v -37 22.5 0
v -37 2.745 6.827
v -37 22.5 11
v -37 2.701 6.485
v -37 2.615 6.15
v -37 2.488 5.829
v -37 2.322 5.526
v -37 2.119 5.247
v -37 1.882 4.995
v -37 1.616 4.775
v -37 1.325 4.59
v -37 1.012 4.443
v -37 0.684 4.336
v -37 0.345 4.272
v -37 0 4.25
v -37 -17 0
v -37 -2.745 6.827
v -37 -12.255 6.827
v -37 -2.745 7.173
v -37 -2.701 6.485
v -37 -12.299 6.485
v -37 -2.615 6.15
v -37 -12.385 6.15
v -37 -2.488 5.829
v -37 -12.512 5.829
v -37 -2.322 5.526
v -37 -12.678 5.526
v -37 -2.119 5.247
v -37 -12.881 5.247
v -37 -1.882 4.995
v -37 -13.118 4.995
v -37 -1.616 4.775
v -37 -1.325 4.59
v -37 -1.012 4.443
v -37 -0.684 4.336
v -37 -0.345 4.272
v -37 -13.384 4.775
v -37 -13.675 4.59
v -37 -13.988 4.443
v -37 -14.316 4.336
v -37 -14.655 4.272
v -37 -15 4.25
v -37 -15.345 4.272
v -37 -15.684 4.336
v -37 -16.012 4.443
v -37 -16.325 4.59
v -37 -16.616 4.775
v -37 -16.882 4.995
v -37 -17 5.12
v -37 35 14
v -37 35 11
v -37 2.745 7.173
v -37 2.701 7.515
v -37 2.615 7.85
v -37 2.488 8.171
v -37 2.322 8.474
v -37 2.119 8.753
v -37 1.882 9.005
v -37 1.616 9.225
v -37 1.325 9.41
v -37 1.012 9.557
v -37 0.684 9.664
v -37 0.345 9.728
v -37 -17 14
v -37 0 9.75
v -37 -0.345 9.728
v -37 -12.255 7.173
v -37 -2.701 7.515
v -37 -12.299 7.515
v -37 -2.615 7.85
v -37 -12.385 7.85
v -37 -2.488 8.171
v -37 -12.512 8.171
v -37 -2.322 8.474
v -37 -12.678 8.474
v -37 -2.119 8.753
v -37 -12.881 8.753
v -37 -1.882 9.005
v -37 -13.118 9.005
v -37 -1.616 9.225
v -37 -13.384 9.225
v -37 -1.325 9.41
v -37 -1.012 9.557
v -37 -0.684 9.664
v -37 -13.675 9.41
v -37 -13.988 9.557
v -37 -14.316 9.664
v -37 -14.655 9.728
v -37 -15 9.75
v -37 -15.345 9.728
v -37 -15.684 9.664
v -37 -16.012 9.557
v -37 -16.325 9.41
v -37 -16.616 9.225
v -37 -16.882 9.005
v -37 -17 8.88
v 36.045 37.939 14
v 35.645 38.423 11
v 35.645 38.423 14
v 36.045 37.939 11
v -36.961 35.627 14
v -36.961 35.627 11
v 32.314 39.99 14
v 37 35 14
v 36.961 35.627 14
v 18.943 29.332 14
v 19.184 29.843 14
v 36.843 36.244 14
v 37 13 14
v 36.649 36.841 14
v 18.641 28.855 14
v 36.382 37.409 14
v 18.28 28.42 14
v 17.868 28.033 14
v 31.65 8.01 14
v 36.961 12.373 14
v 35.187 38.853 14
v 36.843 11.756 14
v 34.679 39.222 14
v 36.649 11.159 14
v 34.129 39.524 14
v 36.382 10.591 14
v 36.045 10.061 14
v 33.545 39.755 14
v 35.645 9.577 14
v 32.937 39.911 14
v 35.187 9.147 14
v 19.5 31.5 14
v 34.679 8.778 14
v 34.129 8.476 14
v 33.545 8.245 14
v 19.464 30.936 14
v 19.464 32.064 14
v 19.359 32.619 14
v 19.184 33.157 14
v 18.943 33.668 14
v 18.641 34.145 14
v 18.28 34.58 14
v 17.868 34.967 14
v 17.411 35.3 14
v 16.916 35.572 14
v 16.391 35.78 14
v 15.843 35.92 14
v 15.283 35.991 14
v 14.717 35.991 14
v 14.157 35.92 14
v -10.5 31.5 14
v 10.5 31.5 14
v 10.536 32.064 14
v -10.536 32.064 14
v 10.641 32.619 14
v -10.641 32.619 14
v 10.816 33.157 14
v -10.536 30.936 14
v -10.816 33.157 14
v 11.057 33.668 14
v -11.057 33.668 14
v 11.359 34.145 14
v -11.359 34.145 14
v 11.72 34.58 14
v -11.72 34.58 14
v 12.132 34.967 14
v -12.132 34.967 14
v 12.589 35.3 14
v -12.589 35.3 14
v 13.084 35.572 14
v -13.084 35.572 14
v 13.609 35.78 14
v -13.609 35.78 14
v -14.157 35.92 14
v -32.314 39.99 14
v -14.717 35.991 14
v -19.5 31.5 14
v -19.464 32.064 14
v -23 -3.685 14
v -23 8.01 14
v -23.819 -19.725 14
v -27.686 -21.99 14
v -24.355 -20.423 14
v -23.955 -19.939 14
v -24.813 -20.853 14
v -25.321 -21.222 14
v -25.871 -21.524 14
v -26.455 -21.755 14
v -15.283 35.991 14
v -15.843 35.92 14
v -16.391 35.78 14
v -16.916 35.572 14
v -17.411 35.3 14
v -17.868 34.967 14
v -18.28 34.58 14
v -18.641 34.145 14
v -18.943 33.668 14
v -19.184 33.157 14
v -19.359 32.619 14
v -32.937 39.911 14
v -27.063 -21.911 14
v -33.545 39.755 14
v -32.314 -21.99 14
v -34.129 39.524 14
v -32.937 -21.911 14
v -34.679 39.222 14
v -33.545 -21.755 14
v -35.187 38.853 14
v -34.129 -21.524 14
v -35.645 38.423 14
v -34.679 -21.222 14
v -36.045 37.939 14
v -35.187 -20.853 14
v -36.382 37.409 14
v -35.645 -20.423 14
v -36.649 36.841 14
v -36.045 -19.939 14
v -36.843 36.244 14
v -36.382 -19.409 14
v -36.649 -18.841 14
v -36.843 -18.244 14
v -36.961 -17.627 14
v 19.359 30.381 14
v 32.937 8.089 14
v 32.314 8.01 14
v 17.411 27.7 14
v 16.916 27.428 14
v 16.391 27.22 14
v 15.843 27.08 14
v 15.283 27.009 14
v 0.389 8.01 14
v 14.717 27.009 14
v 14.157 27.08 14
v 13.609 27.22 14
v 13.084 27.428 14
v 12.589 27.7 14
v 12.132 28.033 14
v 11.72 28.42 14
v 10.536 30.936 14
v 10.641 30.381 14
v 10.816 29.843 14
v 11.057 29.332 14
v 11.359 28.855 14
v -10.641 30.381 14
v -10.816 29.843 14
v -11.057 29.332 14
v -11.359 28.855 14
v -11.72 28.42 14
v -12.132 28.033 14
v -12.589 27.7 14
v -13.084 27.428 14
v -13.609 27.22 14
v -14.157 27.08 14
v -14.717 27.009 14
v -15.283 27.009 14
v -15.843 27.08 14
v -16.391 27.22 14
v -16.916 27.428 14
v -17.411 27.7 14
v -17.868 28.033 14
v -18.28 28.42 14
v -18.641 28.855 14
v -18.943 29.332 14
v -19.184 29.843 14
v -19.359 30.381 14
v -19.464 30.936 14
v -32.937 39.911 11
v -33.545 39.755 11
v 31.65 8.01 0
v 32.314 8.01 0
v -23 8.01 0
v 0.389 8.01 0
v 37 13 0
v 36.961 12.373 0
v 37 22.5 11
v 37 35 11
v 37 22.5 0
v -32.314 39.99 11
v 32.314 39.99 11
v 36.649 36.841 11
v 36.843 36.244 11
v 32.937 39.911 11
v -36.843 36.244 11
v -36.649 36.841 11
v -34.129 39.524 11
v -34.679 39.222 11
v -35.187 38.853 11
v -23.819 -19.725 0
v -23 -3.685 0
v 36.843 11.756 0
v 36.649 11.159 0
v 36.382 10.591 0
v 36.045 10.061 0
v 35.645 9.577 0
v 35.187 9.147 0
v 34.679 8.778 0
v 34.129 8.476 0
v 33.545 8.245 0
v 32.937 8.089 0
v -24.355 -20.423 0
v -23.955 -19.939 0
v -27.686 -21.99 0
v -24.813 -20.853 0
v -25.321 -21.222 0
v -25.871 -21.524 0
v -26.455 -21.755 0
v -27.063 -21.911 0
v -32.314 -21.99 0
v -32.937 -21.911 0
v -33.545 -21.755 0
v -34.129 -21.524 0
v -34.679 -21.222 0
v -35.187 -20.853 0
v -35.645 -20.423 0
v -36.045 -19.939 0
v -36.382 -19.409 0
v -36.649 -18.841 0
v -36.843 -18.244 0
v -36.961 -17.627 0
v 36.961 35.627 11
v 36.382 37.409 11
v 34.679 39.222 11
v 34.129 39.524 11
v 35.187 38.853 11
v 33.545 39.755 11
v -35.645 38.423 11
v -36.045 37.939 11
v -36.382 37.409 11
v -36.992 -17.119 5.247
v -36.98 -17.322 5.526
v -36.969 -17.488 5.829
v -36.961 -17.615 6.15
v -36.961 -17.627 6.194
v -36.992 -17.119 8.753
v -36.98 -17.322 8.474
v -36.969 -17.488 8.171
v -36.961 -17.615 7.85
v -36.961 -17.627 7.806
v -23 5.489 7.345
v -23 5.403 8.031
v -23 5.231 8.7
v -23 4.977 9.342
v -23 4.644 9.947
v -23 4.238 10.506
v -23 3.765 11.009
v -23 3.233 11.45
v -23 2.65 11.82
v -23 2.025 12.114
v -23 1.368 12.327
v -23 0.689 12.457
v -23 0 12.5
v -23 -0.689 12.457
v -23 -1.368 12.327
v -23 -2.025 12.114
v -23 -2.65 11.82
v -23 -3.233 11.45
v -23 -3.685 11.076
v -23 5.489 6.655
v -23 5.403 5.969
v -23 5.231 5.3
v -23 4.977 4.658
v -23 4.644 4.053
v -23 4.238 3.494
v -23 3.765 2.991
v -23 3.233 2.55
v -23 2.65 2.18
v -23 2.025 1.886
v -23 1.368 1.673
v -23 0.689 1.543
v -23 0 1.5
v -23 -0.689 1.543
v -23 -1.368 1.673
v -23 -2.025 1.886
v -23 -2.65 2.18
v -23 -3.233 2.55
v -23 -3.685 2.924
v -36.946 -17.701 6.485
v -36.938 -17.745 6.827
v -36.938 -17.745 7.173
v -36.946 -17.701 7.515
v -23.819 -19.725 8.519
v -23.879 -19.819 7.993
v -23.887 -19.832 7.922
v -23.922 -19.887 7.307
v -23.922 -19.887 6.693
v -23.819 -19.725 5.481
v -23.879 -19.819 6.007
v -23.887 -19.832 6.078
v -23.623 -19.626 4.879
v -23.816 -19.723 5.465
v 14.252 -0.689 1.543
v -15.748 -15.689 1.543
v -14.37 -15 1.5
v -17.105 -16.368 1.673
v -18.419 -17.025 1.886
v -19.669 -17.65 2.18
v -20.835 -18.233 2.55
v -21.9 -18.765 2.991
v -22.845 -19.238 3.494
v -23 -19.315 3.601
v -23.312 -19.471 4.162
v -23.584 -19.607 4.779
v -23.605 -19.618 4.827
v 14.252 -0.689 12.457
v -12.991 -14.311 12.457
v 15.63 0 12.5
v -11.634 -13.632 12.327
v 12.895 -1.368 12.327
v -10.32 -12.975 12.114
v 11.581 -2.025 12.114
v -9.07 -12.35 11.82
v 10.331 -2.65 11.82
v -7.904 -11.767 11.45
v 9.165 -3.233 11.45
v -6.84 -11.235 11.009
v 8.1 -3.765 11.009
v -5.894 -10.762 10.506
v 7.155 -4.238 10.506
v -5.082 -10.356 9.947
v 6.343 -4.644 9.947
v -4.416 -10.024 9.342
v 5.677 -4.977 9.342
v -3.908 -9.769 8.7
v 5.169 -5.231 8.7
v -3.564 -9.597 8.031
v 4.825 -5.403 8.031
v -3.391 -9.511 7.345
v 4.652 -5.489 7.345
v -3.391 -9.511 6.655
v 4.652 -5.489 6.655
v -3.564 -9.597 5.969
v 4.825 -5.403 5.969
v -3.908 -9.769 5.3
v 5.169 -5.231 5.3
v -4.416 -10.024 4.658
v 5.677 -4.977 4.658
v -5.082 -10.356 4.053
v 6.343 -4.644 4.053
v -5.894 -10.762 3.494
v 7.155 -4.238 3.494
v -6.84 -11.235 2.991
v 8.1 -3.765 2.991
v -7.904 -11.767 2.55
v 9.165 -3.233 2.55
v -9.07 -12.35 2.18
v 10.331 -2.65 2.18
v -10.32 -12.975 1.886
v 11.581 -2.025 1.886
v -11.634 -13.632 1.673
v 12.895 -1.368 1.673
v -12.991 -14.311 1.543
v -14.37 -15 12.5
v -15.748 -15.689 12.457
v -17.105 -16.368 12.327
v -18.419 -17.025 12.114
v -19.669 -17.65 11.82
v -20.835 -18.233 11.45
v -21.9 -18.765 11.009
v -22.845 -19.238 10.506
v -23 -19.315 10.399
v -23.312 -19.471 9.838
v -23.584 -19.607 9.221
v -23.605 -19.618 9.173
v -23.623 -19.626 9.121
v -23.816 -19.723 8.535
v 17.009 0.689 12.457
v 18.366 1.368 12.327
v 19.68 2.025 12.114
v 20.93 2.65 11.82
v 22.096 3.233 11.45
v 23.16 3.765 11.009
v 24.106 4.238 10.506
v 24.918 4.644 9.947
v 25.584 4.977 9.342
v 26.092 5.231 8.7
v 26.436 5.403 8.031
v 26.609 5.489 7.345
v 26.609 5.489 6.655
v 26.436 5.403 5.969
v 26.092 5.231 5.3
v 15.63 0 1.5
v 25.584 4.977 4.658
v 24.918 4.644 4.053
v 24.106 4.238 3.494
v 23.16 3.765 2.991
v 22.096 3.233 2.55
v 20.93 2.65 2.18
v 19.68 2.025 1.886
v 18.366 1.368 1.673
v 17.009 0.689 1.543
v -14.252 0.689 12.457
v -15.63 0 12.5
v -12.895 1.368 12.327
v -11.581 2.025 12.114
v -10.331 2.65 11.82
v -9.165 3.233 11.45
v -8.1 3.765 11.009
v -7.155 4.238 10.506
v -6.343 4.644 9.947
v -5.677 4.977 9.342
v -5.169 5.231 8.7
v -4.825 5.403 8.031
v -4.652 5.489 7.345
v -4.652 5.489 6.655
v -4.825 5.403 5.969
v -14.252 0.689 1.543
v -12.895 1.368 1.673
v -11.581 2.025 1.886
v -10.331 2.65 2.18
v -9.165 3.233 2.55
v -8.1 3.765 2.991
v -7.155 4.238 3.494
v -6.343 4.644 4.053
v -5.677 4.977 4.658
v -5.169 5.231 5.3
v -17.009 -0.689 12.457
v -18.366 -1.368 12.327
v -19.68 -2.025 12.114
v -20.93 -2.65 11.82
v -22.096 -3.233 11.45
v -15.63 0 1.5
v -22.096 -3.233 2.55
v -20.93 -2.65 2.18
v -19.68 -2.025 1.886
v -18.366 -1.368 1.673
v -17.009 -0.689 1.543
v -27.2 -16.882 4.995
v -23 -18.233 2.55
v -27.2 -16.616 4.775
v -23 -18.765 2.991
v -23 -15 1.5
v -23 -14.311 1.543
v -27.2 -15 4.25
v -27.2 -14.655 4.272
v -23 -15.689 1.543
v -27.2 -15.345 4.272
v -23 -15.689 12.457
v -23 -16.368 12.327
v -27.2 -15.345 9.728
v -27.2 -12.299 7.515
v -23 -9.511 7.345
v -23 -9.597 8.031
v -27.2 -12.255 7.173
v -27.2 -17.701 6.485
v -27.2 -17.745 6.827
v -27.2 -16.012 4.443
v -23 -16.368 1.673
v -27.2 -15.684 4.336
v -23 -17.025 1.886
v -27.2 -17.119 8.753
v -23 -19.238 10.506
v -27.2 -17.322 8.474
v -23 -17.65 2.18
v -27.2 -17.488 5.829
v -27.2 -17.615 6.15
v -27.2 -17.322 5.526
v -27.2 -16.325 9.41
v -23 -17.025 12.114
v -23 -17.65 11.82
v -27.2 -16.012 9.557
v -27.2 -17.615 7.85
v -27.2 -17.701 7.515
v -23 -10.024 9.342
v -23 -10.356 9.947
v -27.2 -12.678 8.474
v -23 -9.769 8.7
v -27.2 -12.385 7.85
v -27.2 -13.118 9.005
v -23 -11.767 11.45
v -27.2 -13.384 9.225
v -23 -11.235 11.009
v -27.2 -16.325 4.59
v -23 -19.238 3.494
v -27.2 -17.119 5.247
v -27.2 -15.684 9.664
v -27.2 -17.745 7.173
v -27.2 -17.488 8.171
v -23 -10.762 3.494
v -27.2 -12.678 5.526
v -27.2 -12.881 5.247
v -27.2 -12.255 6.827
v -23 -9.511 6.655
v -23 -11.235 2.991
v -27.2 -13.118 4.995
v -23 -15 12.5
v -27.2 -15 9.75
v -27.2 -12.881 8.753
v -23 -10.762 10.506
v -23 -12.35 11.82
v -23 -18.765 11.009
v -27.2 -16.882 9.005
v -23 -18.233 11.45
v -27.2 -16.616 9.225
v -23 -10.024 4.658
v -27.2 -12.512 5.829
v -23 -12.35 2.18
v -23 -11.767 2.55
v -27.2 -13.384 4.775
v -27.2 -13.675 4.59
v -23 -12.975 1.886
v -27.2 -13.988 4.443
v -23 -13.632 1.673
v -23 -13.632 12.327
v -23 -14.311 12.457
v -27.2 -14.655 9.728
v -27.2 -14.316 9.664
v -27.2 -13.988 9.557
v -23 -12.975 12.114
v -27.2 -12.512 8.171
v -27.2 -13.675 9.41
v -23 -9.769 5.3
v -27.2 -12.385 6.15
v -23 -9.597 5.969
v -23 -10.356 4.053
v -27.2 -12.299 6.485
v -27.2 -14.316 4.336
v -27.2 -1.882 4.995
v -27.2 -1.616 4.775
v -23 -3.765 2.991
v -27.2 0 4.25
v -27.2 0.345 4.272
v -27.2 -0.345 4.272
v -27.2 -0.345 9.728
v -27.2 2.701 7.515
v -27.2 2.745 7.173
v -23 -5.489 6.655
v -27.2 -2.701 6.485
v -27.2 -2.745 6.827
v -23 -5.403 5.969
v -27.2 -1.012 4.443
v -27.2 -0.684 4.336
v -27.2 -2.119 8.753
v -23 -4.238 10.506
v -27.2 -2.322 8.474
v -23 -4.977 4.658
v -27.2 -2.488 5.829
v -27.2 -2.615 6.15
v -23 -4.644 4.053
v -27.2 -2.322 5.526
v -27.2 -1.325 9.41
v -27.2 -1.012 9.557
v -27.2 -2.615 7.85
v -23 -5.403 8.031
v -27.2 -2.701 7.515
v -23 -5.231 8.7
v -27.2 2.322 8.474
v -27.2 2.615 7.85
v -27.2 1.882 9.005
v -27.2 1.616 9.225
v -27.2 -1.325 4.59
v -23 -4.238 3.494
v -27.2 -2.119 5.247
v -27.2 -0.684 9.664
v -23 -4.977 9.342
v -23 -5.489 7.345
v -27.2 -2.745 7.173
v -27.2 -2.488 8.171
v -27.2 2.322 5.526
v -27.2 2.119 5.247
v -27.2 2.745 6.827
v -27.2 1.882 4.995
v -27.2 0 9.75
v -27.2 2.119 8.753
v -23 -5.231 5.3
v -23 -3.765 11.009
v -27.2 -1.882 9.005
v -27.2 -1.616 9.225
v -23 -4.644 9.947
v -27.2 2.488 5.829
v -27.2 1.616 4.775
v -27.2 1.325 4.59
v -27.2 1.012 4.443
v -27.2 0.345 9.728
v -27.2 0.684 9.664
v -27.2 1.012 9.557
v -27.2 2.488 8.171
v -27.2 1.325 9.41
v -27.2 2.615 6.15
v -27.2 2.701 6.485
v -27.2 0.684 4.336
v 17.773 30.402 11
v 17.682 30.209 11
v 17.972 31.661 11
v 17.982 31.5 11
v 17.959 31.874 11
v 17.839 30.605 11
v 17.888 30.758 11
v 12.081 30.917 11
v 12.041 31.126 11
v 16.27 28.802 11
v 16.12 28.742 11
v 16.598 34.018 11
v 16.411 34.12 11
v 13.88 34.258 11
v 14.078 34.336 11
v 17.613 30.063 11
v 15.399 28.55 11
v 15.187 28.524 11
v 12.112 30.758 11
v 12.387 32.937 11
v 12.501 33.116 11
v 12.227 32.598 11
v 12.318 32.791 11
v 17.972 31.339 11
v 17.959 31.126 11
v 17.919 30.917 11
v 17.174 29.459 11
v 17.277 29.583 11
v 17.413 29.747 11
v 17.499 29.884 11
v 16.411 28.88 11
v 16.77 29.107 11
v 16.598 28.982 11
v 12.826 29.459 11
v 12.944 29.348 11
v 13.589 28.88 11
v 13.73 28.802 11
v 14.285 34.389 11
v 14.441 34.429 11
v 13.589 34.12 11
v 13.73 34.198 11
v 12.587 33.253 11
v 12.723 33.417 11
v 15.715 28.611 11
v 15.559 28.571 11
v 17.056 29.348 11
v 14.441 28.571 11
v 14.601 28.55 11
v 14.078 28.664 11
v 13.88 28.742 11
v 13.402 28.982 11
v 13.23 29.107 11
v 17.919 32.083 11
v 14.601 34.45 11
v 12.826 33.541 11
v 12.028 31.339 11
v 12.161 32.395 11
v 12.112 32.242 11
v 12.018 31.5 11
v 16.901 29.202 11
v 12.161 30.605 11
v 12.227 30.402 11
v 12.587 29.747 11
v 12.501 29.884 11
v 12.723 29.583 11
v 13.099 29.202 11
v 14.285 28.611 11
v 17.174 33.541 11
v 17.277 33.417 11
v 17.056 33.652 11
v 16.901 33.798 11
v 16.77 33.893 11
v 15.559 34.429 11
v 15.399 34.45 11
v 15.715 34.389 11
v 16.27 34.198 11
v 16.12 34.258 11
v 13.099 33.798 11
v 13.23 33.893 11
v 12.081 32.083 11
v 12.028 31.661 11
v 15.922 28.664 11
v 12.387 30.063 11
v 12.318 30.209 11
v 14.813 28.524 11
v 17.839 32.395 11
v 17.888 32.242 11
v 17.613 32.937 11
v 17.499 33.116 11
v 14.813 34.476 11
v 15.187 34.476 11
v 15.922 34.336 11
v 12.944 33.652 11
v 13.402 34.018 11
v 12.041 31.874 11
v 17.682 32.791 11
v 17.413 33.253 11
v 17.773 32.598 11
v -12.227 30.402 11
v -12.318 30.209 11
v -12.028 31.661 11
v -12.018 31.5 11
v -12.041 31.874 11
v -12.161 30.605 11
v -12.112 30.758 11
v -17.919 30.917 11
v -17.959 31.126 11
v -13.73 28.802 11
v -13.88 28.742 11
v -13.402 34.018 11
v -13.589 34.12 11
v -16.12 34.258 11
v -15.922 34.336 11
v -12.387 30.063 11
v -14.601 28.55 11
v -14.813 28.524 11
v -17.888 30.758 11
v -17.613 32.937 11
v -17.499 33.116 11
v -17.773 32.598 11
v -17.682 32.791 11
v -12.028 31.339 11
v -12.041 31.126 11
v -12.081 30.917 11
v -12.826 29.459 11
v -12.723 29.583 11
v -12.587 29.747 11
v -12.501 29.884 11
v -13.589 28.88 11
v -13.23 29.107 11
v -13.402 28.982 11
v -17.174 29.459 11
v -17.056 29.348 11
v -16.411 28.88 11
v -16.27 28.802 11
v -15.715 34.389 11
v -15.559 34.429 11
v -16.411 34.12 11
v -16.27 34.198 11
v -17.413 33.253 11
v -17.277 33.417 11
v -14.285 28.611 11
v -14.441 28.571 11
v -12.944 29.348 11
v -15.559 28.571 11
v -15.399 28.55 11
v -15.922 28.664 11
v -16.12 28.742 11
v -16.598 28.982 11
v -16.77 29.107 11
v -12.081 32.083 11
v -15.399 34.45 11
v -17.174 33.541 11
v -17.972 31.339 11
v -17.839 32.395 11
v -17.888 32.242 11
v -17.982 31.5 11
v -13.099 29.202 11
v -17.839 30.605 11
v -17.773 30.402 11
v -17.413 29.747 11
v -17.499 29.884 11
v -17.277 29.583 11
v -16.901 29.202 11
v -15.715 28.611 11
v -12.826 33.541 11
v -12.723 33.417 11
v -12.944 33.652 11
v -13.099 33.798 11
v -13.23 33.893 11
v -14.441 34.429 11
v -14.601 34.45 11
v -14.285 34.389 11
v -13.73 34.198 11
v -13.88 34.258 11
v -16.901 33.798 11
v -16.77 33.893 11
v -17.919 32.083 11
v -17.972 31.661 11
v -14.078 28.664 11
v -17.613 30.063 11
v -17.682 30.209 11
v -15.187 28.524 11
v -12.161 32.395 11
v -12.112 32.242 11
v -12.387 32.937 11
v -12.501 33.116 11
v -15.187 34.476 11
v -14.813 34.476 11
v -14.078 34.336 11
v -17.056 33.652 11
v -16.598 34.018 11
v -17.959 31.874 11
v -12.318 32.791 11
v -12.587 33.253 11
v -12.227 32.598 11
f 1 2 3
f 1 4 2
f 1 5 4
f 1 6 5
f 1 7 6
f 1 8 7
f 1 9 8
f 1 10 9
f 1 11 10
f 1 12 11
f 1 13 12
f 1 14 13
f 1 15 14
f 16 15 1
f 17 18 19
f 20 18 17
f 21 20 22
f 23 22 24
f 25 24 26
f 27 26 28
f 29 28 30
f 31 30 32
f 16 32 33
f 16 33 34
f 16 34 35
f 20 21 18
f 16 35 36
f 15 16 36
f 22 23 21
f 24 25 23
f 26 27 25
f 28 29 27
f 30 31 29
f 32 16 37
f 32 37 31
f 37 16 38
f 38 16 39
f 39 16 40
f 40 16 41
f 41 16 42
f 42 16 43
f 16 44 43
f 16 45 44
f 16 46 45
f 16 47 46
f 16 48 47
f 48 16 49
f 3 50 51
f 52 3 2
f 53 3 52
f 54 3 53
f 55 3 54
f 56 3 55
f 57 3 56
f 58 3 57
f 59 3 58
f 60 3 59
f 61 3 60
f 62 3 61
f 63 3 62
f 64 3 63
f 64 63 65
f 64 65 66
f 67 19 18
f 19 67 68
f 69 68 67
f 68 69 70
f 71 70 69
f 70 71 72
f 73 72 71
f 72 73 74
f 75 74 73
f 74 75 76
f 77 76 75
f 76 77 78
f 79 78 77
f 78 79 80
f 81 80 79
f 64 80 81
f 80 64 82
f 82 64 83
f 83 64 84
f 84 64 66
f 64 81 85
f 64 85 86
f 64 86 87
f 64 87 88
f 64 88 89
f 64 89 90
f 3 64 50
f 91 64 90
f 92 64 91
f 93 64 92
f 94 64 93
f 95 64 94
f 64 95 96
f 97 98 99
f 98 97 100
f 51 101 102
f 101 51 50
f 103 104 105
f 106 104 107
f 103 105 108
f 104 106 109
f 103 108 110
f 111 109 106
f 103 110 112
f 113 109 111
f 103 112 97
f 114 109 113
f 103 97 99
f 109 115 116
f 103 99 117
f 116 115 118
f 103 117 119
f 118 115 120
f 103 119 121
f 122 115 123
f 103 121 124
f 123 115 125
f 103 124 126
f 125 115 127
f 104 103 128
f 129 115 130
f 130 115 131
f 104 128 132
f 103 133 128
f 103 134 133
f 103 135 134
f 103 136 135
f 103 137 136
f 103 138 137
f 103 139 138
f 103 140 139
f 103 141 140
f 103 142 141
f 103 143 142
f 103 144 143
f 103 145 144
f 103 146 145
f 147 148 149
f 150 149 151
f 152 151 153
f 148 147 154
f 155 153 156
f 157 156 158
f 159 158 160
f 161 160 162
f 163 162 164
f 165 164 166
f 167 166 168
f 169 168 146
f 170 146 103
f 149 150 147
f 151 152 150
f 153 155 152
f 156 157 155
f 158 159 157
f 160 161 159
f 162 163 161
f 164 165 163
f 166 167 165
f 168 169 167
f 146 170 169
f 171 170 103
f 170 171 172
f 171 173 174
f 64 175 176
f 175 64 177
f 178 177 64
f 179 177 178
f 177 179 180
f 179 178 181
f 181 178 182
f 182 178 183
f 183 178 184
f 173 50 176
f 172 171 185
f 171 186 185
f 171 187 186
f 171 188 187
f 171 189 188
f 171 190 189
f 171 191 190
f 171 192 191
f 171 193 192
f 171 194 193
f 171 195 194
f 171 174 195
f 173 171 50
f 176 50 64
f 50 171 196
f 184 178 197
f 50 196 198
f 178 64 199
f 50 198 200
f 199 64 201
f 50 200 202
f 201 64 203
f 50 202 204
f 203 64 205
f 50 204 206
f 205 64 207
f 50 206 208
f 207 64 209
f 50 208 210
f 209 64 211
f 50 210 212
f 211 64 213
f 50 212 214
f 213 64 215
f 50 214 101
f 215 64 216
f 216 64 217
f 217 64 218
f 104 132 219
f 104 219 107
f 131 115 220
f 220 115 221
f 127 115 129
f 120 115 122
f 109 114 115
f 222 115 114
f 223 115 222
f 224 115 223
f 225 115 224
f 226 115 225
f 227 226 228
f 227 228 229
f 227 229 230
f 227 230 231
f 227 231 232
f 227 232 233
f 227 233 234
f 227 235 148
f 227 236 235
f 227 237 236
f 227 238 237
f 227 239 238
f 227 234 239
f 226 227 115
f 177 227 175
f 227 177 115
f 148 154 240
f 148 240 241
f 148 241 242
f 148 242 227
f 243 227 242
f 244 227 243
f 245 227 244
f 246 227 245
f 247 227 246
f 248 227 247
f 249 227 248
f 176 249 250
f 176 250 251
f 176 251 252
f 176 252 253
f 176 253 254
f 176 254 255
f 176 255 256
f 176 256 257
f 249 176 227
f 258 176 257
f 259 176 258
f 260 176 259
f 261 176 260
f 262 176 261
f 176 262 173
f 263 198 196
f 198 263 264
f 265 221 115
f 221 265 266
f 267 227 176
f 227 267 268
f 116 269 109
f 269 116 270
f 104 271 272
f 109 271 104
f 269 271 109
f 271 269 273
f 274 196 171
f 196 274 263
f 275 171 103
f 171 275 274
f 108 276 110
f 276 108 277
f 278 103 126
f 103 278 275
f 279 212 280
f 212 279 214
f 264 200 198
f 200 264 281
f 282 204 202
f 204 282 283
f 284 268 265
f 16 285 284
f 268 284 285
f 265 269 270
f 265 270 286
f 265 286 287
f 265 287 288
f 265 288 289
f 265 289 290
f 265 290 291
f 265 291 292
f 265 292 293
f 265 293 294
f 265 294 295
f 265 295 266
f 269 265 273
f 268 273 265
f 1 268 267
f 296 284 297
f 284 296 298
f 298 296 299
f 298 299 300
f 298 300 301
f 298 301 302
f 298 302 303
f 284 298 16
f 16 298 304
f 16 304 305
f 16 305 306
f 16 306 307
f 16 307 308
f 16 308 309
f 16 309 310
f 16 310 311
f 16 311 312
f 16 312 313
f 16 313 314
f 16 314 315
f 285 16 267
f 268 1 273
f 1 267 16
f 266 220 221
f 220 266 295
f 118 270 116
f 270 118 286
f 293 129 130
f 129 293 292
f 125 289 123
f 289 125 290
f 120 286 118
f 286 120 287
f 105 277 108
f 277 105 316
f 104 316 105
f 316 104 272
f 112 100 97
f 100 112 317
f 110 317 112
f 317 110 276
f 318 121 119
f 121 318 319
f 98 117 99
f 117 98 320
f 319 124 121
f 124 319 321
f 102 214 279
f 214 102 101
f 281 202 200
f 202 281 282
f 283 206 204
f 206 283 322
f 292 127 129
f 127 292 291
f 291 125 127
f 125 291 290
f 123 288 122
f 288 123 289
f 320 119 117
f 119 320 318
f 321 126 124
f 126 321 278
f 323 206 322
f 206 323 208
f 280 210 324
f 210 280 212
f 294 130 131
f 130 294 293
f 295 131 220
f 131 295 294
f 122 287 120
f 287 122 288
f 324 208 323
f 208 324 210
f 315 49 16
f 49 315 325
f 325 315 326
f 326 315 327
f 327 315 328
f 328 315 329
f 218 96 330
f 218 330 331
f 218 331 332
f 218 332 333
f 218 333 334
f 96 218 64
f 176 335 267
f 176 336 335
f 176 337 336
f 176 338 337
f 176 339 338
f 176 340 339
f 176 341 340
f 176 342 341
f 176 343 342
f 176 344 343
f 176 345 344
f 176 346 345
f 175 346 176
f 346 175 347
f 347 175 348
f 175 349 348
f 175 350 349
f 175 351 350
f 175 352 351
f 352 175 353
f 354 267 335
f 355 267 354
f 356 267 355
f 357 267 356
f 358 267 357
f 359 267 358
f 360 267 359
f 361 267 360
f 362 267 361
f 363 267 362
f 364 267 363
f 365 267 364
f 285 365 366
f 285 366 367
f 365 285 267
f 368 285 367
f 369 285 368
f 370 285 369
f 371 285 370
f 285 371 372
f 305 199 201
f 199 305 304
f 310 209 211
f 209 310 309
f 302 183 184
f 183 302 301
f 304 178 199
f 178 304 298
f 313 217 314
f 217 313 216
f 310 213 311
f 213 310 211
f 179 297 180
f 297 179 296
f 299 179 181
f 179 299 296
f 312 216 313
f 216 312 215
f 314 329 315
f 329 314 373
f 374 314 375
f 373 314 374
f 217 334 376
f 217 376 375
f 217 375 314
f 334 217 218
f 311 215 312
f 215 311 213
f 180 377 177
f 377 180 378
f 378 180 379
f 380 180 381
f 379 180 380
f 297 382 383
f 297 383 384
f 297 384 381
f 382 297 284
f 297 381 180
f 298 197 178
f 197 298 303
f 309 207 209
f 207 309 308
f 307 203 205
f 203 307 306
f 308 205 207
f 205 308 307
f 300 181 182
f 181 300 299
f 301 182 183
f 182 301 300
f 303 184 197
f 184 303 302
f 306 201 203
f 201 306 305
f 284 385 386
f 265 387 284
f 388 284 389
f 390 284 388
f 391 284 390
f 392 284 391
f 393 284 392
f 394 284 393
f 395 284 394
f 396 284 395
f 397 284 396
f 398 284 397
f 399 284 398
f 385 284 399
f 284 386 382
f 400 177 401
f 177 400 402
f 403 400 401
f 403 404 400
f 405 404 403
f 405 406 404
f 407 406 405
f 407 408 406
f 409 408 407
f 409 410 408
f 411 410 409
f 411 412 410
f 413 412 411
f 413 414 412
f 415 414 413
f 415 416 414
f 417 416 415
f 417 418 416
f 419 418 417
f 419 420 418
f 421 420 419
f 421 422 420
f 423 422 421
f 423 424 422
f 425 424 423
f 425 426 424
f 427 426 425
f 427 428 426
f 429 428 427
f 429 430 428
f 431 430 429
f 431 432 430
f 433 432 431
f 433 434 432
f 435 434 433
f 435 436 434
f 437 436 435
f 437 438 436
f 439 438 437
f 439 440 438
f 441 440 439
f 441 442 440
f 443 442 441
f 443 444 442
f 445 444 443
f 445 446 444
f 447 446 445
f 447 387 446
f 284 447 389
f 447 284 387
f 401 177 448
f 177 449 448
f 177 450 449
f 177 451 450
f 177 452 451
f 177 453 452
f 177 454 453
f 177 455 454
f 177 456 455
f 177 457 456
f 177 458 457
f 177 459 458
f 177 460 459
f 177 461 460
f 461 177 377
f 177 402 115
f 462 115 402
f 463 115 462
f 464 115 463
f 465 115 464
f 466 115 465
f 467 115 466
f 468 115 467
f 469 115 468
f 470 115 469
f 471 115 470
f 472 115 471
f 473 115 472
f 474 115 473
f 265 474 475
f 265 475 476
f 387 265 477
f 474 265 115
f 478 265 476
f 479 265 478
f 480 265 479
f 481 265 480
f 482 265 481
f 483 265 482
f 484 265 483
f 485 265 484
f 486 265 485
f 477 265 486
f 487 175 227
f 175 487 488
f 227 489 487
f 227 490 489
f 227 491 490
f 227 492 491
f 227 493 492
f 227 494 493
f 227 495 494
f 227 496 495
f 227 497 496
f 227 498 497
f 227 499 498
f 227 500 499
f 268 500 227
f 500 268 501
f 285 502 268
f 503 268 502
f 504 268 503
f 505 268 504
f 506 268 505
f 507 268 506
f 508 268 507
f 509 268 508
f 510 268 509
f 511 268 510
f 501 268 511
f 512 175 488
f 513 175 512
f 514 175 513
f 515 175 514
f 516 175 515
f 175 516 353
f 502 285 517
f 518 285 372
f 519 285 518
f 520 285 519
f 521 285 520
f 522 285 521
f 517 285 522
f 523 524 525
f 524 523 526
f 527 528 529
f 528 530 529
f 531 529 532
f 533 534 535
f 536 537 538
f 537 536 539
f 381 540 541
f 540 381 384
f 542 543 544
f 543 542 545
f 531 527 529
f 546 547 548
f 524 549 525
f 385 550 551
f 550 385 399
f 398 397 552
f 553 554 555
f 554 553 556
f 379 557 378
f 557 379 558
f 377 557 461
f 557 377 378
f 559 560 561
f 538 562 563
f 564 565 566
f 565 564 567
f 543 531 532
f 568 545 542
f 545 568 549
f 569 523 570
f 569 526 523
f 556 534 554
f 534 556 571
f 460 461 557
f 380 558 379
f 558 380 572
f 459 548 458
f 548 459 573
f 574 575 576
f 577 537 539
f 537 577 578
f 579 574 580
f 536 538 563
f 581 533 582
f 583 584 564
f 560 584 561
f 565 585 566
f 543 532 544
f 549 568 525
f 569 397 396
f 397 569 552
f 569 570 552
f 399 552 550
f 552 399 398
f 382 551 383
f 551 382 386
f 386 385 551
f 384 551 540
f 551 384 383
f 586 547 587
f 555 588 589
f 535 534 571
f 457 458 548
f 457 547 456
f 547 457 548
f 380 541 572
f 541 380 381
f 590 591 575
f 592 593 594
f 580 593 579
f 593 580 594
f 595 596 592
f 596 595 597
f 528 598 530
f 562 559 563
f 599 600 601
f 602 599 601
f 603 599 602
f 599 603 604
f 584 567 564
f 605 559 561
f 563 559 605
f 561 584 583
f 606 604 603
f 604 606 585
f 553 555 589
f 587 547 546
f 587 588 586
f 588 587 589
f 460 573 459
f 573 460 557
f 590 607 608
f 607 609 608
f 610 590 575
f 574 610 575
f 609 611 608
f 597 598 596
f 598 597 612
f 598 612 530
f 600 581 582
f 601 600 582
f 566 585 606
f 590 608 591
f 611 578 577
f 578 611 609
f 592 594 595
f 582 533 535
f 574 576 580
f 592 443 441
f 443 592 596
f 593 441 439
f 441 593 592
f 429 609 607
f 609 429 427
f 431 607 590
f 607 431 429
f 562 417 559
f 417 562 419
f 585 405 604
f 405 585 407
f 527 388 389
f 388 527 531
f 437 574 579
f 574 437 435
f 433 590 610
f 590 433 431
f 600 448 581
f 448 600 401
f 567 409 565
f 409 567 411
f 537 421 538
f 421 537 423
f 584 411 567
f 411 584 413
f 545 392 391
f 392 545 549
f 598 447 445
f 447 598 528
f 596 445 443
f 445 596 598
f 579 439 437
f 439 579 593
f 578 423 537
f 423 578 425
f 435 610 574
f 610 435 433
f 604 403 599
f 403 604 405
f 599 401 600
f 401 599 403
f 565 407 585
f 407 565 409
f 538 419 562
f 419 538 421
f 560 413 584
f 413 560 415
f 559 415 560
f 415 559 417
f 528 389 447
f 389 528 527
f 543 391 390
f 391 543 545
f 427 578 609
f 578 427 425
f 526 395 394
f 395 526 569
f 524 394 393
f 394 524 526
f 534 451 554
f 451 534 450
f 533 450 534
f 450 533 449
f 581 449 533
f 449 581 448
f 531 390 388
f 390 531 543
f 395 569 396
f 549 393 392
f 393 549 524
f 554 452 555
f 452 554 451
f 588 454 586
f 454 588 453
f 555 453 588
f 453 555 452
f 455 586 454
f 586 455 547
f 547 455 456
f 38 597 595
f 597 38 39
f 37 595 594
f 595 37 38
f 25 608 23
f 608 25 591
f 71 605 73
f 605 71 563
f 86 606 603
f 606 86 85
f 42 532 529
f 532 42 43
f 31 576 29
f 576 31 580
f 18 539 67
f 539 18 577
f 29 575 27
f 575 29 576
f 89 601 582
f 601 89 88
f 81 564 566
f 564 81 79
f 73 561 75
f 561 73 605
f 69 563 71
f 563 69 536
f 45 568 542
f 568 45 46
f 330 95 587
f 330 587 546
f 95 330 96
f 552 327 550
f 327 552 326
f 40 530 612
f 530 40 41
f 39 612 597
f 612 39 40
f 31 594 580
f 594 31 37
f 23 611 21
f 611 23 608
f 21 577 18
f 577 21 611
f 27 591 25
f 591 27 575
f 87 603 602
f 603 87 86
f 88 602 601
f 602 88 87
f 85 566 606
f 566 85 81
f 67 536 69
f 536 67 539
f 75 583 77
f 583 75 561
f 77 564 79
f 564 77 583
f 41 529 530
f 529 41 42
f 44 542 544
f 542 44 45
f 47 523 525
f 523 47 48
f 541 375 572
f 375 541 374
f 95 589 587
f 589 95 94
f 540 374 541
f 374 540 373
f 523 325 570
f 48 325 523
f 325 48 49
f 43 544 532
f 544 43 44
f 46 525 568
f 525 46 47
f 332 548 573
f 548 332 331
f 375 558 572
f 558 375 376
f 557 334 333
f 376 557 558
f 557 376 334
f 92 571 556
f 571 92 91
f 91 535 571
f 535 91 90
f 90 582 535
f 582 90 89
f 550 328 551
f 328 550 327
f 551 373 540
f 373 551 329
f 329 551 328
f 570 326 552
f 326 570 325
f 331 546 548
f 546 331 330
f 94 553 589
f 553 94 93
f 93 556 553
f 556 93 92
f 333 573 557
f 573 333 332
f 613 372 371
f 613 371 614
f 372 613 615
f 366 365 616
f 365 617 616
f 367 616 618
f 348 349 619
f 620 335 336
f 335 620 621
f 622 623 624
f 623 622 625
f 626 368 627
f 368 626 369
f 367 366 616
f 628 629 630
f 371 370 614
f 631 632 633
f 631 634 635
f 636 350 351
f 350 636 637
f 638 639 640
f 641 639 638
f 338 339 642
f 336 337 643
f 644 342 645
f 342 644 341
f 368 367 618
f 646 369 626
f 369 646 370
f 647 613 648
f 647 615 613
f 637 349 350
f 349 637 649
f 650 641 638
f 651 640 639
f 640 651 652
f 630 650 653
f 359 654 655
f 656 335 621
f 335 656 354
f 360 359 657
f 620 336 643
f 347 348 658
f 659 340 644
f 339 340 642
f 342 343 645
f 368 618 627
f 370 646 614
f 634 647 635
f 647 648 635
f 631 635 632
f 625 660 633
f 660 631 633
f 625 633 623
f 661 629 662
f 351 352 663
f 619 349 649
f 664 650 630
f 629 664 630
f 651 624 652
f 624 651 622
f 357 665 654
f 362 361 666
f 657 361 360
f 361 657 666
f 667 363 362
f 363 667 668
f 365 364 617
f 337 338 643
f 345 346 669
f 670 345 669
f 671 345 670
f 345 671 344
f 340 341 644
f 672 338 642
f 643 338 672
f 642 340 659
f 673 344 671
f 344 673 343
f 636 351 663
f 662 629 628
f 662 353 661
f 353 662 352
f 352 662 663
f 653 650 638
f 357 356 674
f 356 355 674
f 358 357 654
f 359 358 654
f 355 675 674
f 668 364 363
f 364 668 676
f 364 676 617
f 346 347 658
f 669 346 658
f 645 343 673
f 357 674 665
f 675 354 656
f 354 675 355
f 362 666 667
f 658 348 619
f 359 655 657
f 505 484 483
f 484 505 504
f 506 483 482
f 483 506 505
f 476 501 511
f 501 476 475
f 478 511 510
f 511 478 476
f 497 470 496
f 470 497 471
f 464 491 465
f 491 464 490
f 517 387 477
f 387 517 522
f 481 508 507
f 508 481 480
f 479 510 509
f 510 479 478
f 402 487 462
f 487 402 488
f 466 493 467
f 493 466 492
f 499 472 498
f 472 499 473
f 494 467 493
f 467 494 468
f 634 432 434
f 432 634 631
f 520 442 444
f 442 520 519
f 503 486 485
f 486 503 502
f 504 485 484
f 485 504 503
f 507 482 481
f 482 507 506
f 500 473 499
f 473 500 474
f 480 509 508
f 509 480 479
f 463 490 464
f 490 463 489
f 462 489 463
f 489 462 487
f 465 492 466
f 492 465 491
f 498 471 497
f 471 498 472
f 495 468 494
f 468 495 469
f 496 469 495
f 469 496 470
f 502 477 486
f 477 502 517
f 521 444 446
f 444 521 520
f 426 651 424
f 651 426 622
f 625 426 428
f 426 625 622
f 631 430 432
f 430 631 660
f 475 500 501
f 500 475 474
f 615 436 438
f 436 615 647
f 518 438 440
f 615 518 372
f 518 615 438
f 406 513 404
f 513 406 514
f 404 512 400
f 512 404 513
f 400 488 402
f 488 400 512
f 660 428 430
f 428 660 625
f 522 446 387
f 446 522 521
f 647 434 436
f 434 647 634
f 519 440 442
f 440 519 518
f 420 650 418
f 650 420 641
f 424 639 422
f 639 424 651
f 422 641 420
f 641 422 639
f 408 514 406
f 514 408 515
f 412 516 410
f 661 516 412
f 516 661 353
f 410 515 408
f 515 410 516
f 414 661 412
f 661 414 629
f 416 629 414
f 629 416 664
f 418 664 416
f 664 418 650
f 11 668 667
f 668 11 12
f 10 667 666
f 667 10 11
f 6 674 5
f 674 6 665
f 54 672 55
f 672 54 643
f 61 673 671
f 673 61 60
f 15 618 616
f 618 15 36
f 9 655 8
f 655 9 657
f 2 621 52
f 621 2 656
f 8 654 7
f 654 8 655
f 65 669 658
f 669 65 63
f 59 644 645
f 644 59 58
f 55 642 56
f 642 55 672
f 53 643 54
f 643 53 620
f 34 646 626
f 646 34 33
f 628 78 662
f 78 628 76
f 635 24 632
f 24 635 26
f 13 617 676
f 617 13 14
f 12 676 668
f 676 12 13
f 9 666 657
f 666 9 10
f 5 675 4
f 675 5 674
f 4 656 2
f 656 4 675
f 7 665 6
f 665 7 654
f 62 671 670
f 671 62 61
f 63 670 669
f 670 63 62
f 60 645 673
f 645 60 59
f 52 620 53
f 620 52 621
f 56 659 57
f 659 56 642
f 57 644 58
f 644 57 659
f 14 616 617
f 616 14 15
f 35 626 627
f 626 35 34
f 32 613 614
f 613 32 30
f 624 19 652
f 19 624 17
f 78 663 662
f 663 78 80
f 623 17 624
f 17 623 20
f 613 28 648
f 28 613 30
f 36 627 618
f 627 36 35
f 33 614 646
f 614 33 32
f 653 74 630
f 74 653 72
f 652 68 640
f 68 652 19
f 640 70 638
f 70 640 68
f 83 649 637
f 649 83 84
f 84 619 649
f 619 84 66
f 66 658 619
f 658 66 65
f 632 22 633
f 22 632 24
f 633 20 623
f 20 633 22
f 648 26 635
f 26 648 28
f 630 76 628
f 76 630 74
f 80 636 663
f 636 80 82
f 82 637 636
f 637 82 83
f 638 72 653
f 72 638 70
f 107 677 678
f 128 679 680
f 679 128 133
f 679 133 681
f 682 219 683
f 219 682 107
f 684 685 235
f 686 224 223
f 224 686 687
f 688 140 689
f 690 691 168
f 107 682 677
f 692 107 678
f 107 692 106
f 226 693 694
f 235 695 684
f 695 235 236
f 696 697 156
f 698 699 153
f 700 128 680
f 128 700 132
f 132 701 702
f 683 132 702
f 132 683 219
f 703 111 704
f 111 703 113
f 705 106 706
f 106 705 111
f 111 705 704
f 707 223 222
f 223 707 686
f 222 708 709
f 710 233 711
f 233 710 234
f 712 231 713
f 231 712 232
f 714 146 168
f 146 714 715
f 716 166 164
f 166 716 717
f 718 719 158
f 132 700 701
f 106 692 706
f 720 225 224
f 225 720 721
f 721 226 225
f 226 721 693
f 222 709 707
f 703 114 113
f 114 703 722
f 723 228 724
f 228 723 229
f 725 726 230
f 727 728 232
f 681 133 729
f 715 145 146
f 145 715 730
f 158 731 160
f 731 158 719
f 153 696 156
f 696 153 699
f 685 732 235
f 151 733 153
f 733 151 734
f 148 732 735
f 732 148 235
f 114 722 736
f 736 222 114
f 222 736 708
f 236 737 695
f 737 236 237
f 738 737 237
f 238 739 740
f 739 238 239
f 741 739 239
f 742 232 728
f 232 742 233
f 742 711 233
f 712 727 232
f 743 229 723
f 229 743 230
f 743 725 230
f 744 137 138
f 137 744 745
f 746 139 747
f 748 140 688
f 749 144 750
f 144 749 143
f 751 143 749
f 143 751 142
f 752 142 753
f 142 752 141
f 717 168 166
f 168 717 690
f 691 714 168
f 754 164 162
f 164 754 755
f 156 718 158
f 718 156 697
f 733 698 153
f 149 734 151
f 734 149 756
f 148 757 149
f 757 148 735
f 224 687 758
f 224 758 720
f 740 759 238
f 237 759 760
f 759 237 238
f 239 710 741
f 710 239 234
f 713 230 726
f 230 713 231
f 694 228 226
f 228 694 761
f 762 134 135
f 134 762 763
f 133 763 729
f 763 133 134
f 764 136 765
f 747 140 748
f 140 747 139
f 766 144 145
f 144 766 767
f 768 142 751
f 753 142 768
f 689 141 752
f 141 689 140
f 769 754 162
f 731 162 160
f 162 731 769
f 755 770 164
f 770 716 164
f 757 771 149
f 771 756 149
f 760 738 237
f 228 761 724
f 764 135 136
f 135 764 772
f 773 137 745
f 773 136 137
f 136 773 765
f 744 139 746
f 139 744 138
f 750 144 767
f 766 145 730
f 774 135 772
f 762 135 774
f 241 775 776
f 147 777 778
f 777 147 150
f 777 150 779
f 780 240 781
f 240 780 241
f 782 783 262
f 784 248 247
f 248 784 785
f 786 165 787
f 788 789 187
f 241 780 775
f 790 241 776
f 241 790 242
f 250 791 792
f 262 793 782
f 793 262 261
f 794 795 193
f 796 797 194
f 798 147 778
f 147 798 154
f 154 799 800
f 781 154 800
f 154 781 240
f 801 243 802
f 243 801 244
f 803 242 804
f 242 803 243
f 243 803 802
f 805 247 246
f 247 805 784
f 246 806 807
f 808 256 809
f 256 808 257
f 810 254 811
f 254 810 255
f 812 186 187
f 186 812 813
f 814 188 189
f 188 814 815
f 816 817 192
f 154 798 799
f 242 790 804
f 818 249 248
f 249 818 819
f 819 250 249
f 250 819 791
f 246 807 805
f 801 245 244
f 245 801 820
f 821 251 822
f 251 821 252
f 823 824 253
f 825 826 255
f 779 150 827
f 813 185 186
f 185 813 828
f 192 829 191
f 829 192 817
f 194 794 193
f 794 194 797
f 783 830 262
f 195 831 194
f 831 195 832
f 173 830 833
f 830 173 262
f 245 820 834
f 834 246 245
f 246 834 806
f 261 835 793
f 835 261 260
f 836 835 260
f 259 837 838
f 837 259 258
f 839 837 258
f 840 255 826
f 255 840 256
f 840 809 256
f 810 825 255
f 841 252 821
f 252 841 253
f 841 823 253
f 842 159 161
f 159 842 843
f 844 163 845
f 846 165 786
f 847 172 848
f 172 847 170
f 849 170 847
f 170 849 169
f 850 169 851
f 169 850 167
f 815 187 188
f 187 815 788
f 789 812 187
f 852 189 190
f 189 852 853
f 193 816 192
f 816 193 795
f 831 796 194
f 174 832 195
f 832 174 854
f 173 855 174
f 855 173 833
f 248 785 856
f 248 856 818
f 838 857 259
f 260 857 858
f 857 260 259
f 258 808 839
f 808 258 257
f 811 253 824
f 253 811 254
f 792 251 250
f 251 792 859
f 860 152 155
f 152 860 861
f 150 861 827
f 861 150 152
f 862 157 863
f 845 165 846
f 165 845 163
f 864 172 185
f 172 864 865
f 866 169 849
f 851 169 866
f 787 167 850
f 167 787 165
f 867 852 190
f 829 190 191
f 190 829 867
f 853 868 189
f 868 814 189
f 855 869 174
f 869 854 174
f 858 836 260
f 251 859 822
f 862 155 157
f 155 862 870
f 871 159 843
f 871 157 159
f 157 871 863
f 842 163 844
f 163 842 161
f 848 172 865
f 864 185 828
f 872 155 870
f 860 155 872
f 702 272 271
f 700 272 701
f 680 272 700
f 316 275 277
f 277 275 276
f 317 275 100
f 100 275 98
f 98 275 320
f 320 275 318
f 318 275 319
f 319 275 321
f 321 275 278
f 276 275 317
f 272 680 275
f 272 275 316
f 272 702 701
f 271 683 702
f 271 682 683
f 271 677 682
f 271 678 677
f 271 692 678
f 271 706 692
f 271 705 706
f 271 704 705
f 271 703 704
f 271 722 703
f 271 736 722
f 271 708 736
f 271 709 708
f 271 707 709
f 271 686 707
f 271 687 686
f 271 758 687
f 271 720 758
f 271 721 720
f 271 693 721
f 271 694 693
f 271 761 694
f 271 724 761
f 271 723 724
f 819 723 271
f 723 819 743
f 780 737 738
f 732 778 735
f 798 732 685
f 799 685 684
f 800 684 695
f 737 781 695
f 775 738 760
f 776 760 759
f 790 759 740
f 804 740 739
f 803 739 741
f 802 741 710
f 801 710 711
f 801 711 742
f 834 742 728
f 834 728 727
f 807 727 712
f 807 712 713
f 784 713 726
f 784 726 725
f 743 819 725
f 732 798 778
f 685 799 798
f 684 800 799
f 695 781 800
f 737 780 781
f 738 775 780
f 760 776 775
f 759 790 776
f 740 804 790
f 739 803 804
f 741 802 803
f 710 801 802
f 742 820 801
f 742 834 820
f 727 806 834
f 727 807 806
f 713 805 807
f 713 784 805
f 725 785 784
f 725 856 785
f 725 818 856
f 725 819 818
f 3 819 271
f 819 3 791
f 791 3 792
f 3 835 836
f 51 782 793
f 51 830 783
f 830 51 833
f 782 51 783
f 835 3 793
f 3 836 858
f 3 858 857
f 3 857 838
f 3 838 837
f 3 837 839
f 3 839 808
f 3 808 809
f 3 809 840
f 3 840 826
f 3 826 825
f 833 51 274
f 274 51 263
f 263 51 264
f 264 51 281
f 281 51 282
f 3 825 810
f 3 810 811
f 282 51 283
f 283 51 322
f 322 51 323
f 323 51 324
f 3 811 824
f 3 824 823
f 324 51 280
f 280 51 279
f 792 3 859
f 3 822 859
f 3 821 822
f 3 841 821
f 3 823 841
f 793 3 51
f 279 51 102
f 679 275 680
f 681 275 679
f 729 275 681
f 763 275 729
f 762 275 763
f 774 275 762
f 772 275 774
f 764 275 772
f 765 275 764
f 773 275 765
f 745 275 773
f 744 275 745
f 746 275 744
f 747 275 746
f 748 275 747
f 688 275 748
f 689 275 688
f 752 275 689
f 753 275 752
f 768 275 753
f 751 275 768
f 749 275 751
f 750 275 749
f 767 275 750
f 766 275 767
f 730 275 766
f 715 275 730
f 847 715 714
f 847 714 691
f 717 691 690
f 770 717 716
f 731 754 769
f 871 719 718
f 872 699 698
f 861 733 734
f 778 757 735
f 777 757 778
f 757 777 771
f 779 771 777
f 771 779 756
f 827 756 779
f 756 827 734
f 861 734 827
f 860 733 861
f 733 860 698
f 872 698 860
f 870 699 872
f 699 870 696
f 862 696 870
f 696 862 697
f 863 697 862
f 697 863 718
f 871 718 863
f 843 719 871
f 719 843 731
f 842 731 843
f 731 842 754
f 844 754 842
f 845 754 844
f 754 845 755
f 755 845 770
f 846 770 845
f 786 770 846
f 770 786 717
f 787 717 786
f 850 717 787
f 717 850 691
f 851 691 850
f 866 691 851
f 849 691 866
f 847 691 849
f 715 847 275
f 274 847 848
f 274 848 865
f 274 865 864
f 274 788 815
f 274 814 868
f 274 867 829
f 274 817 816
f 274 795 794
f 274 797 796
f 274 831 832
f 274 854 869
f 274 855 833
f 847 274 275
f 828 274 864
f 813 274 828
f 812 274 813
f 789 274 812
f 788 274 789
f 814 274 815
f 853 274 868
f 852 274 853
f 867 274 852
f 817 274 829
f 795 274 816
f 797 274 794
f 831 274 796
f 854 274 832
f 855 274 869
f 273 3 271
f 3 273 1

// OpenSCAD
$fn = 50;


difference() {
	union() {
		translate(v = [0, 24.0000000000, 0]) {
			hull() {
				translate(v = [-32.0000000000, 11.0000000000, 0]) {
					cylinder(h = 14, r = 5);
				}
				translate(v = [32.0000000000, 11.0000000000, 0]) {
					cylinder(h = 14, r = 5);
				}
				translate(v = [-32.0000000000, -11.0000000000, 0]) {
					cylinder(h = 14, r = 5);
				}
				translate(v = [32.0000000000, -11.0000000000, 0]) {
					cylinder(h = 14, r = 5);
				}
			}
		}
		translate(v = [-30.0000000000, 0, 0]) {
			hull() {
				translate(v = [-2.0000000000, 17.0000000000, 0]) {
					cylinder(h = 14, r = 5);
				}
				translate(v = [2.0000000000, 17.0000000000, 0]) {
					cylinder(h = 14, r = 5);
				}
				translate(v = [-2.0000000000, -17.0000000000, 0]) {
					cylinder(h = 14, r = 5);
				}
				translate(v = [2.0000000000, -17.0000000000, 0]) {
					cylinder(h = 14, r = 5);
				}
			}
		}
		rotate(a = [0, 0, 26.5650511771]) {
			hull() {
				translate(v = [-33.0410196625, 2.0000000000, 0]) {
					cylinder(h = 14, r = 5);
				}
				translate(v = [33.0410196625, 2.0000000000, 0]) {
					cylinder(h = 14, r = 5);
				}
				translate(v = [-33.0410196625, -2.0000000000, 0]) {
					cylinder(h = 14, r = 5);
				}
				translate(v = [33.0410196625, -2.0000000000, 0]) {
					cylinder(h = 14, r = 5);
				}
			}
		}
	}
	union() {
		translate(v = [-23.0000000000, -15.0000000000, 7.0000000000]) {
			rotate(a = [0, 90, 0]) {
				difference() {
					union() {
						#translate(v = [0, 0, -14.0000000000]) {
							cylinder(h = 14, r = 2.2500000000);
						}
						#translate(v = [0, 0, -4.2000000000]) {
							cylinder(h = 4.2000000000, r1 = 2.7500000000, r2 = 5.5000000000);
						}
						#cylinder(h = 250, r = 5.5000000000);
						#translate(v = [0, 0, -14.0000000000]) {
							cylinder(h = 14, r = 2.7500000000);
						}
						#translate(v = [0, 0, -14.0000000000]) {
							cylinder(h = 14, r = 2.2500000000);
						}
					}
					union();
				}
			}
		}
		translate(v = [-23.0000000000, 0.0000000000, 7.0000000000]) {
			rotate(a = [0, 90, 0]) {
				difference() {
					union() {
						#translate(v = [0, 0, -14.0000000000]) {
							cylinder(h = 14, r = 2.2500000000);
						}
						#translate(v = [0, 0, -4.2000000000]) {
							cylinder(h = 4.2000000000, r1 = 2.7500000000, r2 = 5.5000000000);
						}
						#cylinder(h = 250, r = 5.5000000000);
						#translate(v = [0, 0, -14.0000000000]) {
							cylinder(h = 14, r = 2.7500000000);
						}
						#translate(v = [0, 0, -14.0000000000]) {
							cylinder(h = 14, r = 2.2500000000);
						}
					}
					union();
				}
			}
		}
		translate(v = [15.0000000000, 31.5000000000, 14.0000000000]) {
			rotate(a = [0, 0, 0]) {
				difference() {
					union() {
						#translate(v = [0, 0, -14.0000000000]) {
							cylinder(h = 14, r = 2.2500000000);
						}
						#translate(v = [0, 0, -4.2000000000]) {
							cylinder(h = 4.2000000000, r1 = 2.3750000000, r2 = 4.5000000000);
						}
						#cylinder(h = 250, r = 4.5000000000);
						#translate(v = [0, 0, -14.0000000000]) {
							cylinder(h = 14, r = 2.3750000000);
						}
						#translate(v = [0, 0, -14.0000000000]) {
							cylinder(h = 14, r = 2.2500000000);
						}
					}
					union();
				}
			}
		}
		translate(v = [-15.0000000000, 31.5000000000, 14.0000000000]) {
			rotate(a = [0, 0, 0]) {
				difference() {
					union() {
						#translate(v = [0, 0, -14.0000000000]) {
							cylinder(h = 14, r = 2.2500000000);
						}
						#translate(v = [0, 0, -4.2000000000]) {
							cylinder(h = 4.2000000000, r1 = 2.3750000000, r2 = 4.5000000000);
						}
						#cylinder(h = 250, r = 4.5000000000);
						#translate(v = [0, 0, -14.0000000000]) {
							cylinder(h = 14, r = 2.3750000000);
						}
						#translate(v = [0, 0, -14.0000000000]) {
							cylinder(h = 14, r = 2.2500000000);
						}
					}
					union();
				}
			}
		}
		translate(v = [-37.0000000000, 22.5000000000, 0]) {
			cube(size = [74, 18, 11]);
		}
	}
}
